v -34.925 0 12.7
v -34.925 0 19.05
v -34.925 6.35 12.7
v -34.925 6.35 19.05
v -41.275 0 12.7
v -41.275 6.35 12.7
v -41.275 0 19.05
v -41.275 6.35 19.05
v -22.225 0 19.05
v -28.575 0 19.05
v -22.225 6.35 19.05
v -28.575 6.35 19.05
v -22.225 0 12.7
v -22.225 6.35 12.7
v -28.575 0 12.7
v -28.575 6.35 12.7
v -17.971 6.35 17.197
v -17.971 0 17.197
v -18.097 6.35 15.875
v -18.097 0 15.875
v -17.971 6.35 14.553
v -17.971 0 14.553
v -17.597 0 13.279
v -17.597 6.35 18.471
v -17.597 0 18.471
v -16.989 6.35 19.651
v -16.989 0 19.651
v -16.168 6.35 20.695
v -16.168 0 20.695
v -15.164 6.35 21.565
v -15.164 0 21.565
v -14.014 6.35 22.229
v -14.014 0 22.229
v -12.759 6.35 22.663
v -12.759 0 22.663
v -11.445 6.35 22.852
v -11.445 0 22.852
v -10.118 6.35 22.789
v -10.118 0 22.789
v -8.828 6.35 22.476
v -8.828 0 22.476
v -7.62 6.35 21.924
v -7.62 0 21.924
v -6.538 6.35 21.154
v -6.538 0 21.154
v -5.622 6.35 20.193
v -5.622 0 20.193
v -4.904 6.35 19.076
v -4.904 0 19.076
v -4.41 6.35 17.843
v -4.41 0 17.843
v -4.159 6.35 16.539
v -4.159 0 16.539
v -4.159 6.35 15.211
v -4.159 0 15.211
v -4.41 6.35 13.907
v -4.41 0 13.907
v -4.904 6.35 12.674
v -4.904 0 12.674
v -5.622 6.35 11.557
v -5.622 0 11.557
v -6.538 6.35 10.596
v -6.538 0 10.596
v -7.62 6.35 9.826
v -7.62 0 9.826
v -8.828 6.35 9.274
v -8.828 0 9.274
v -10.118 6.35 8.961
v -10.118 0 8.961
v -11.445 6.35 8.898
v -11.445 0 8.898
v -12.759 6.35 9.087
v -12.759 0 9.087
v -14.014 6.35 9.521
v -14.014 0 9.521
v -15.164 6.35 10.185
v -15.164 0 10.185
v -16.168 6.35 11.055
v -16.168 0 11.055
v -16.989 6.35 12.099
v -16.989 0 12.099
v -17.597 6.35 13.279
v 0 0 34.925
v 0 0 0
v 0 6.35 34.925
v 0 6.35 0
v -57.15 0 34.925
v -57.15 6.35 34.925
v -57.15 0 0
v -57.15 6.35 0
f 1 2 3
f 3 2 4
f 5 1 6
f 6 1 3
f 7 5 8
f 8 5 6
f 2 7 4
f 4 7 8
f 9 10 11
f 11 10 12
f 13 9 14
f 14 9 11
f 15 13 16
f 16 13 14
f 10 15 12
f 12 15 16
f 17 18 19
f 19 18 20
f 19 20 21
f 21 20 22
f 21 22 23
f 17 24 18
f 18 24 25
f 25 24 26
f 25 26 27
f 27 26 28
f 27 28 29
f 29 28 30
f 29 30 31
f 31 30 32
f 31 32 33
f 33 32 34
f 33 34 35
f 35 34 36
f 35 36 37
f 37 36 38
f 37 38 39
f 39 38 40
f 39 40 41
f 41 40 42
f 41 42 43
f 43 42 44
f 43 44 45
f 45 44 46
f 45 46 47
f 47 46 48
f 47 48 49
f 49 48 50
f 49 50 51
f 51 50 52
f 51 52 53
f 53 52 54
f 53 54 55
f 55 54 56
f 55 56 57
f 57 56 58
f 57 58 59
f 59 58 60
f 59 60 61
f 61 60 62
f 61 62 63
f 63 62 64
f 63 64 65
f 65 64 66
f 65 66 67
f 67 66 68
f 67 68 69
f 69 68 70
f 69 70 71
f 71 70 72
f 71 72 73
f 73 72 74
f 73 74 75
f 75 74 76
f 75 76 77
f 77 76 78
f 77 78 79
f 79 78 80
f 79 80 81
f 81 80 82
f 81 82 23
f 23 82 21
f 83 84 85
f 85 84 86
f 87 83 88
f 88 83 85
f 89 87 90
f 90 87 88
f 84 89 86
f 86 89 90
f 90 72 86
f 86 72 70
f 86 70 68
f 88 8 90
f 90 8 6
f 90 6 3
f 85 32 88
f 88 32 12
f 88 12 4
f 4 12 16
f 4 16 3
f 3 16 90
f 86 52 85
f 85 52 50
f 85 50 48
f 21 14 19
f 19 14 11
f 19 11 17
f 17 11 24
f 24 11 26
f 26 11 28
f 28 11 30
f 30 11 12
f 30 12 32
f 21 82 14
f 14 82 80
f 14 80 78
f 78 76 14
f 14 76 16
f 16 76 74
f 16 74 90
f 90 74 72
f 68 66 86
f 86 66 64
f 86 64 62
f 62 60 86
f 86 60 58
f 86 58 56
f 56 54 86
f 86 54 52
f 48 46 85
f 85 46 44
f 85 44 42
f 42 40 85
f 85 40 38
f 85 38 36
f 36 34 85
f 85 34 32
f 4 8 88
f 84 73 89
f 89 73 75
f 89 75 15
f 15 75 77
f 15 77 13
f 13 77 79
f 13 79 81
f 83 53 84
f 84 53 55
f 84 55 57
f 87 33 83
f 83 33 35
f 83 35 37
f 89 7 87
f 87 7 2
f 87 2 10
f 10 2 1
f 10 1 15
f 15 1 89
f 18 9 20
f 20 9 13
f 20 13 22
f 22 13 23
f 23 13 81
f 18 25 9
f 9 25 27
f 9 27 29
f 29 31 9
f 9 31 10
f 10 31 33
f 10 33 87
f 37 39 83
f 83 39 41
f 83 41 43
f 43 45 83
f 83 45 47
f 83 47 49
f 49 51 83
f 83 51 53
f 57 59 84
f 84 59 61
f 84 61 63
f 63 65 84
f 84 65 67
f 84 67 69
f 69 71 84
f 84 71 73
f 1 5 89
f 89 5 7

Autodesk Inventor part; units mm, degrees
ref_plane "YZ Plane" through (0, 0, 0) normal (1, 0, 0) x (0, 1, 0)
ref_plane "XZ Plane" through (0, 0, 0) normal (0, 1, 0) x (-1, 0, 0)
ref_plane "XY Plane" through (0, 0, 0) normal (0, 0, 1) x (1, 0, 0)
sketch "Sketch1" plane through (0, 0, 0) normal (0, 1, 0) x (-1, 0, 0)
  line L0 (57.15, 34.925) -> (57.15, 0)
  line L1 (57.15, 34.925) -> (0, 34.925)
  line L2 (57.15, 0) -> (57.15, 15.875)
  line L3 (34.925, 12.7) -> (41.275, 12.7)
  line L4 (41.275, 12.7) -> (41.275, 19.05)
  line L5 (41.275, 19.05) -> (34.925, 19.05)
  line L6 (34.925, 19.05) -> (34.925, 12.7)
  line L7 (34.925, 12.7) -> (41.275, 19.05) construction
  line L8 (41.275, 12.7) -> (34.925, 19.05) construction
  line L9 (28.575, 12.7) -> (22.225, 12.7)
  line L10 (22.225, 12.7) -> (22.225, 19.05)
  line L11 (22.225, 19.05) -> (28.575, 19.05)
  line L12 (28.575, 19.05) -> (28.575, 12.7)
  line L13 (28.575, 12.7) -> (22.225, 19.05) construction
  line L14 (22.225, 12.7) -> (28.575, 19.05) construction
  circle A0 centre (11.1125, 15.875) radius 6.985
  line L15 (57.15, 34.925) -> (3.175, 34.925)
  line L16 (3.175, 0) -> (57.15, 0)
  line L17 (57.15, 0) -> (57.15, 34.925)
  line L18 (0, 34.925) -> (0, 0)
  line L19 (0, 0) -> (57.15, 0)
  point P0 (0, 0)
  dimension "d0" = 57.15
  dimension "d1" = 15.875
  dimension "d4" = 6.35
  dimension "d5" = 6.35
  dimension "d6" = 6.35
  dimension "d7" = 6.35
  dimension "d9" = 13.97
  dimension "d11" = 0
  dimension "d12" = 53.975
  dimension "d13" = 57.15
  dimension "d14" = 34.925
  dimension "d15" = 90
  dimension "d16" = 3.175
  dimension "d17" = 12.7
  dimension "d18" = 12.7
  dimension "d19" = 6.35
  dimension "d20" = 15.875
  dimension "d21" = 11.1125
  dimension "d22" = 15.875
  dimension "d23" = 11.1125
  dimension "d24" = 34.925
extrude "Extrusion1" add sketch "Sketch1" along normal blind 6.35
properties part number "RCcar_motor_testplate"
